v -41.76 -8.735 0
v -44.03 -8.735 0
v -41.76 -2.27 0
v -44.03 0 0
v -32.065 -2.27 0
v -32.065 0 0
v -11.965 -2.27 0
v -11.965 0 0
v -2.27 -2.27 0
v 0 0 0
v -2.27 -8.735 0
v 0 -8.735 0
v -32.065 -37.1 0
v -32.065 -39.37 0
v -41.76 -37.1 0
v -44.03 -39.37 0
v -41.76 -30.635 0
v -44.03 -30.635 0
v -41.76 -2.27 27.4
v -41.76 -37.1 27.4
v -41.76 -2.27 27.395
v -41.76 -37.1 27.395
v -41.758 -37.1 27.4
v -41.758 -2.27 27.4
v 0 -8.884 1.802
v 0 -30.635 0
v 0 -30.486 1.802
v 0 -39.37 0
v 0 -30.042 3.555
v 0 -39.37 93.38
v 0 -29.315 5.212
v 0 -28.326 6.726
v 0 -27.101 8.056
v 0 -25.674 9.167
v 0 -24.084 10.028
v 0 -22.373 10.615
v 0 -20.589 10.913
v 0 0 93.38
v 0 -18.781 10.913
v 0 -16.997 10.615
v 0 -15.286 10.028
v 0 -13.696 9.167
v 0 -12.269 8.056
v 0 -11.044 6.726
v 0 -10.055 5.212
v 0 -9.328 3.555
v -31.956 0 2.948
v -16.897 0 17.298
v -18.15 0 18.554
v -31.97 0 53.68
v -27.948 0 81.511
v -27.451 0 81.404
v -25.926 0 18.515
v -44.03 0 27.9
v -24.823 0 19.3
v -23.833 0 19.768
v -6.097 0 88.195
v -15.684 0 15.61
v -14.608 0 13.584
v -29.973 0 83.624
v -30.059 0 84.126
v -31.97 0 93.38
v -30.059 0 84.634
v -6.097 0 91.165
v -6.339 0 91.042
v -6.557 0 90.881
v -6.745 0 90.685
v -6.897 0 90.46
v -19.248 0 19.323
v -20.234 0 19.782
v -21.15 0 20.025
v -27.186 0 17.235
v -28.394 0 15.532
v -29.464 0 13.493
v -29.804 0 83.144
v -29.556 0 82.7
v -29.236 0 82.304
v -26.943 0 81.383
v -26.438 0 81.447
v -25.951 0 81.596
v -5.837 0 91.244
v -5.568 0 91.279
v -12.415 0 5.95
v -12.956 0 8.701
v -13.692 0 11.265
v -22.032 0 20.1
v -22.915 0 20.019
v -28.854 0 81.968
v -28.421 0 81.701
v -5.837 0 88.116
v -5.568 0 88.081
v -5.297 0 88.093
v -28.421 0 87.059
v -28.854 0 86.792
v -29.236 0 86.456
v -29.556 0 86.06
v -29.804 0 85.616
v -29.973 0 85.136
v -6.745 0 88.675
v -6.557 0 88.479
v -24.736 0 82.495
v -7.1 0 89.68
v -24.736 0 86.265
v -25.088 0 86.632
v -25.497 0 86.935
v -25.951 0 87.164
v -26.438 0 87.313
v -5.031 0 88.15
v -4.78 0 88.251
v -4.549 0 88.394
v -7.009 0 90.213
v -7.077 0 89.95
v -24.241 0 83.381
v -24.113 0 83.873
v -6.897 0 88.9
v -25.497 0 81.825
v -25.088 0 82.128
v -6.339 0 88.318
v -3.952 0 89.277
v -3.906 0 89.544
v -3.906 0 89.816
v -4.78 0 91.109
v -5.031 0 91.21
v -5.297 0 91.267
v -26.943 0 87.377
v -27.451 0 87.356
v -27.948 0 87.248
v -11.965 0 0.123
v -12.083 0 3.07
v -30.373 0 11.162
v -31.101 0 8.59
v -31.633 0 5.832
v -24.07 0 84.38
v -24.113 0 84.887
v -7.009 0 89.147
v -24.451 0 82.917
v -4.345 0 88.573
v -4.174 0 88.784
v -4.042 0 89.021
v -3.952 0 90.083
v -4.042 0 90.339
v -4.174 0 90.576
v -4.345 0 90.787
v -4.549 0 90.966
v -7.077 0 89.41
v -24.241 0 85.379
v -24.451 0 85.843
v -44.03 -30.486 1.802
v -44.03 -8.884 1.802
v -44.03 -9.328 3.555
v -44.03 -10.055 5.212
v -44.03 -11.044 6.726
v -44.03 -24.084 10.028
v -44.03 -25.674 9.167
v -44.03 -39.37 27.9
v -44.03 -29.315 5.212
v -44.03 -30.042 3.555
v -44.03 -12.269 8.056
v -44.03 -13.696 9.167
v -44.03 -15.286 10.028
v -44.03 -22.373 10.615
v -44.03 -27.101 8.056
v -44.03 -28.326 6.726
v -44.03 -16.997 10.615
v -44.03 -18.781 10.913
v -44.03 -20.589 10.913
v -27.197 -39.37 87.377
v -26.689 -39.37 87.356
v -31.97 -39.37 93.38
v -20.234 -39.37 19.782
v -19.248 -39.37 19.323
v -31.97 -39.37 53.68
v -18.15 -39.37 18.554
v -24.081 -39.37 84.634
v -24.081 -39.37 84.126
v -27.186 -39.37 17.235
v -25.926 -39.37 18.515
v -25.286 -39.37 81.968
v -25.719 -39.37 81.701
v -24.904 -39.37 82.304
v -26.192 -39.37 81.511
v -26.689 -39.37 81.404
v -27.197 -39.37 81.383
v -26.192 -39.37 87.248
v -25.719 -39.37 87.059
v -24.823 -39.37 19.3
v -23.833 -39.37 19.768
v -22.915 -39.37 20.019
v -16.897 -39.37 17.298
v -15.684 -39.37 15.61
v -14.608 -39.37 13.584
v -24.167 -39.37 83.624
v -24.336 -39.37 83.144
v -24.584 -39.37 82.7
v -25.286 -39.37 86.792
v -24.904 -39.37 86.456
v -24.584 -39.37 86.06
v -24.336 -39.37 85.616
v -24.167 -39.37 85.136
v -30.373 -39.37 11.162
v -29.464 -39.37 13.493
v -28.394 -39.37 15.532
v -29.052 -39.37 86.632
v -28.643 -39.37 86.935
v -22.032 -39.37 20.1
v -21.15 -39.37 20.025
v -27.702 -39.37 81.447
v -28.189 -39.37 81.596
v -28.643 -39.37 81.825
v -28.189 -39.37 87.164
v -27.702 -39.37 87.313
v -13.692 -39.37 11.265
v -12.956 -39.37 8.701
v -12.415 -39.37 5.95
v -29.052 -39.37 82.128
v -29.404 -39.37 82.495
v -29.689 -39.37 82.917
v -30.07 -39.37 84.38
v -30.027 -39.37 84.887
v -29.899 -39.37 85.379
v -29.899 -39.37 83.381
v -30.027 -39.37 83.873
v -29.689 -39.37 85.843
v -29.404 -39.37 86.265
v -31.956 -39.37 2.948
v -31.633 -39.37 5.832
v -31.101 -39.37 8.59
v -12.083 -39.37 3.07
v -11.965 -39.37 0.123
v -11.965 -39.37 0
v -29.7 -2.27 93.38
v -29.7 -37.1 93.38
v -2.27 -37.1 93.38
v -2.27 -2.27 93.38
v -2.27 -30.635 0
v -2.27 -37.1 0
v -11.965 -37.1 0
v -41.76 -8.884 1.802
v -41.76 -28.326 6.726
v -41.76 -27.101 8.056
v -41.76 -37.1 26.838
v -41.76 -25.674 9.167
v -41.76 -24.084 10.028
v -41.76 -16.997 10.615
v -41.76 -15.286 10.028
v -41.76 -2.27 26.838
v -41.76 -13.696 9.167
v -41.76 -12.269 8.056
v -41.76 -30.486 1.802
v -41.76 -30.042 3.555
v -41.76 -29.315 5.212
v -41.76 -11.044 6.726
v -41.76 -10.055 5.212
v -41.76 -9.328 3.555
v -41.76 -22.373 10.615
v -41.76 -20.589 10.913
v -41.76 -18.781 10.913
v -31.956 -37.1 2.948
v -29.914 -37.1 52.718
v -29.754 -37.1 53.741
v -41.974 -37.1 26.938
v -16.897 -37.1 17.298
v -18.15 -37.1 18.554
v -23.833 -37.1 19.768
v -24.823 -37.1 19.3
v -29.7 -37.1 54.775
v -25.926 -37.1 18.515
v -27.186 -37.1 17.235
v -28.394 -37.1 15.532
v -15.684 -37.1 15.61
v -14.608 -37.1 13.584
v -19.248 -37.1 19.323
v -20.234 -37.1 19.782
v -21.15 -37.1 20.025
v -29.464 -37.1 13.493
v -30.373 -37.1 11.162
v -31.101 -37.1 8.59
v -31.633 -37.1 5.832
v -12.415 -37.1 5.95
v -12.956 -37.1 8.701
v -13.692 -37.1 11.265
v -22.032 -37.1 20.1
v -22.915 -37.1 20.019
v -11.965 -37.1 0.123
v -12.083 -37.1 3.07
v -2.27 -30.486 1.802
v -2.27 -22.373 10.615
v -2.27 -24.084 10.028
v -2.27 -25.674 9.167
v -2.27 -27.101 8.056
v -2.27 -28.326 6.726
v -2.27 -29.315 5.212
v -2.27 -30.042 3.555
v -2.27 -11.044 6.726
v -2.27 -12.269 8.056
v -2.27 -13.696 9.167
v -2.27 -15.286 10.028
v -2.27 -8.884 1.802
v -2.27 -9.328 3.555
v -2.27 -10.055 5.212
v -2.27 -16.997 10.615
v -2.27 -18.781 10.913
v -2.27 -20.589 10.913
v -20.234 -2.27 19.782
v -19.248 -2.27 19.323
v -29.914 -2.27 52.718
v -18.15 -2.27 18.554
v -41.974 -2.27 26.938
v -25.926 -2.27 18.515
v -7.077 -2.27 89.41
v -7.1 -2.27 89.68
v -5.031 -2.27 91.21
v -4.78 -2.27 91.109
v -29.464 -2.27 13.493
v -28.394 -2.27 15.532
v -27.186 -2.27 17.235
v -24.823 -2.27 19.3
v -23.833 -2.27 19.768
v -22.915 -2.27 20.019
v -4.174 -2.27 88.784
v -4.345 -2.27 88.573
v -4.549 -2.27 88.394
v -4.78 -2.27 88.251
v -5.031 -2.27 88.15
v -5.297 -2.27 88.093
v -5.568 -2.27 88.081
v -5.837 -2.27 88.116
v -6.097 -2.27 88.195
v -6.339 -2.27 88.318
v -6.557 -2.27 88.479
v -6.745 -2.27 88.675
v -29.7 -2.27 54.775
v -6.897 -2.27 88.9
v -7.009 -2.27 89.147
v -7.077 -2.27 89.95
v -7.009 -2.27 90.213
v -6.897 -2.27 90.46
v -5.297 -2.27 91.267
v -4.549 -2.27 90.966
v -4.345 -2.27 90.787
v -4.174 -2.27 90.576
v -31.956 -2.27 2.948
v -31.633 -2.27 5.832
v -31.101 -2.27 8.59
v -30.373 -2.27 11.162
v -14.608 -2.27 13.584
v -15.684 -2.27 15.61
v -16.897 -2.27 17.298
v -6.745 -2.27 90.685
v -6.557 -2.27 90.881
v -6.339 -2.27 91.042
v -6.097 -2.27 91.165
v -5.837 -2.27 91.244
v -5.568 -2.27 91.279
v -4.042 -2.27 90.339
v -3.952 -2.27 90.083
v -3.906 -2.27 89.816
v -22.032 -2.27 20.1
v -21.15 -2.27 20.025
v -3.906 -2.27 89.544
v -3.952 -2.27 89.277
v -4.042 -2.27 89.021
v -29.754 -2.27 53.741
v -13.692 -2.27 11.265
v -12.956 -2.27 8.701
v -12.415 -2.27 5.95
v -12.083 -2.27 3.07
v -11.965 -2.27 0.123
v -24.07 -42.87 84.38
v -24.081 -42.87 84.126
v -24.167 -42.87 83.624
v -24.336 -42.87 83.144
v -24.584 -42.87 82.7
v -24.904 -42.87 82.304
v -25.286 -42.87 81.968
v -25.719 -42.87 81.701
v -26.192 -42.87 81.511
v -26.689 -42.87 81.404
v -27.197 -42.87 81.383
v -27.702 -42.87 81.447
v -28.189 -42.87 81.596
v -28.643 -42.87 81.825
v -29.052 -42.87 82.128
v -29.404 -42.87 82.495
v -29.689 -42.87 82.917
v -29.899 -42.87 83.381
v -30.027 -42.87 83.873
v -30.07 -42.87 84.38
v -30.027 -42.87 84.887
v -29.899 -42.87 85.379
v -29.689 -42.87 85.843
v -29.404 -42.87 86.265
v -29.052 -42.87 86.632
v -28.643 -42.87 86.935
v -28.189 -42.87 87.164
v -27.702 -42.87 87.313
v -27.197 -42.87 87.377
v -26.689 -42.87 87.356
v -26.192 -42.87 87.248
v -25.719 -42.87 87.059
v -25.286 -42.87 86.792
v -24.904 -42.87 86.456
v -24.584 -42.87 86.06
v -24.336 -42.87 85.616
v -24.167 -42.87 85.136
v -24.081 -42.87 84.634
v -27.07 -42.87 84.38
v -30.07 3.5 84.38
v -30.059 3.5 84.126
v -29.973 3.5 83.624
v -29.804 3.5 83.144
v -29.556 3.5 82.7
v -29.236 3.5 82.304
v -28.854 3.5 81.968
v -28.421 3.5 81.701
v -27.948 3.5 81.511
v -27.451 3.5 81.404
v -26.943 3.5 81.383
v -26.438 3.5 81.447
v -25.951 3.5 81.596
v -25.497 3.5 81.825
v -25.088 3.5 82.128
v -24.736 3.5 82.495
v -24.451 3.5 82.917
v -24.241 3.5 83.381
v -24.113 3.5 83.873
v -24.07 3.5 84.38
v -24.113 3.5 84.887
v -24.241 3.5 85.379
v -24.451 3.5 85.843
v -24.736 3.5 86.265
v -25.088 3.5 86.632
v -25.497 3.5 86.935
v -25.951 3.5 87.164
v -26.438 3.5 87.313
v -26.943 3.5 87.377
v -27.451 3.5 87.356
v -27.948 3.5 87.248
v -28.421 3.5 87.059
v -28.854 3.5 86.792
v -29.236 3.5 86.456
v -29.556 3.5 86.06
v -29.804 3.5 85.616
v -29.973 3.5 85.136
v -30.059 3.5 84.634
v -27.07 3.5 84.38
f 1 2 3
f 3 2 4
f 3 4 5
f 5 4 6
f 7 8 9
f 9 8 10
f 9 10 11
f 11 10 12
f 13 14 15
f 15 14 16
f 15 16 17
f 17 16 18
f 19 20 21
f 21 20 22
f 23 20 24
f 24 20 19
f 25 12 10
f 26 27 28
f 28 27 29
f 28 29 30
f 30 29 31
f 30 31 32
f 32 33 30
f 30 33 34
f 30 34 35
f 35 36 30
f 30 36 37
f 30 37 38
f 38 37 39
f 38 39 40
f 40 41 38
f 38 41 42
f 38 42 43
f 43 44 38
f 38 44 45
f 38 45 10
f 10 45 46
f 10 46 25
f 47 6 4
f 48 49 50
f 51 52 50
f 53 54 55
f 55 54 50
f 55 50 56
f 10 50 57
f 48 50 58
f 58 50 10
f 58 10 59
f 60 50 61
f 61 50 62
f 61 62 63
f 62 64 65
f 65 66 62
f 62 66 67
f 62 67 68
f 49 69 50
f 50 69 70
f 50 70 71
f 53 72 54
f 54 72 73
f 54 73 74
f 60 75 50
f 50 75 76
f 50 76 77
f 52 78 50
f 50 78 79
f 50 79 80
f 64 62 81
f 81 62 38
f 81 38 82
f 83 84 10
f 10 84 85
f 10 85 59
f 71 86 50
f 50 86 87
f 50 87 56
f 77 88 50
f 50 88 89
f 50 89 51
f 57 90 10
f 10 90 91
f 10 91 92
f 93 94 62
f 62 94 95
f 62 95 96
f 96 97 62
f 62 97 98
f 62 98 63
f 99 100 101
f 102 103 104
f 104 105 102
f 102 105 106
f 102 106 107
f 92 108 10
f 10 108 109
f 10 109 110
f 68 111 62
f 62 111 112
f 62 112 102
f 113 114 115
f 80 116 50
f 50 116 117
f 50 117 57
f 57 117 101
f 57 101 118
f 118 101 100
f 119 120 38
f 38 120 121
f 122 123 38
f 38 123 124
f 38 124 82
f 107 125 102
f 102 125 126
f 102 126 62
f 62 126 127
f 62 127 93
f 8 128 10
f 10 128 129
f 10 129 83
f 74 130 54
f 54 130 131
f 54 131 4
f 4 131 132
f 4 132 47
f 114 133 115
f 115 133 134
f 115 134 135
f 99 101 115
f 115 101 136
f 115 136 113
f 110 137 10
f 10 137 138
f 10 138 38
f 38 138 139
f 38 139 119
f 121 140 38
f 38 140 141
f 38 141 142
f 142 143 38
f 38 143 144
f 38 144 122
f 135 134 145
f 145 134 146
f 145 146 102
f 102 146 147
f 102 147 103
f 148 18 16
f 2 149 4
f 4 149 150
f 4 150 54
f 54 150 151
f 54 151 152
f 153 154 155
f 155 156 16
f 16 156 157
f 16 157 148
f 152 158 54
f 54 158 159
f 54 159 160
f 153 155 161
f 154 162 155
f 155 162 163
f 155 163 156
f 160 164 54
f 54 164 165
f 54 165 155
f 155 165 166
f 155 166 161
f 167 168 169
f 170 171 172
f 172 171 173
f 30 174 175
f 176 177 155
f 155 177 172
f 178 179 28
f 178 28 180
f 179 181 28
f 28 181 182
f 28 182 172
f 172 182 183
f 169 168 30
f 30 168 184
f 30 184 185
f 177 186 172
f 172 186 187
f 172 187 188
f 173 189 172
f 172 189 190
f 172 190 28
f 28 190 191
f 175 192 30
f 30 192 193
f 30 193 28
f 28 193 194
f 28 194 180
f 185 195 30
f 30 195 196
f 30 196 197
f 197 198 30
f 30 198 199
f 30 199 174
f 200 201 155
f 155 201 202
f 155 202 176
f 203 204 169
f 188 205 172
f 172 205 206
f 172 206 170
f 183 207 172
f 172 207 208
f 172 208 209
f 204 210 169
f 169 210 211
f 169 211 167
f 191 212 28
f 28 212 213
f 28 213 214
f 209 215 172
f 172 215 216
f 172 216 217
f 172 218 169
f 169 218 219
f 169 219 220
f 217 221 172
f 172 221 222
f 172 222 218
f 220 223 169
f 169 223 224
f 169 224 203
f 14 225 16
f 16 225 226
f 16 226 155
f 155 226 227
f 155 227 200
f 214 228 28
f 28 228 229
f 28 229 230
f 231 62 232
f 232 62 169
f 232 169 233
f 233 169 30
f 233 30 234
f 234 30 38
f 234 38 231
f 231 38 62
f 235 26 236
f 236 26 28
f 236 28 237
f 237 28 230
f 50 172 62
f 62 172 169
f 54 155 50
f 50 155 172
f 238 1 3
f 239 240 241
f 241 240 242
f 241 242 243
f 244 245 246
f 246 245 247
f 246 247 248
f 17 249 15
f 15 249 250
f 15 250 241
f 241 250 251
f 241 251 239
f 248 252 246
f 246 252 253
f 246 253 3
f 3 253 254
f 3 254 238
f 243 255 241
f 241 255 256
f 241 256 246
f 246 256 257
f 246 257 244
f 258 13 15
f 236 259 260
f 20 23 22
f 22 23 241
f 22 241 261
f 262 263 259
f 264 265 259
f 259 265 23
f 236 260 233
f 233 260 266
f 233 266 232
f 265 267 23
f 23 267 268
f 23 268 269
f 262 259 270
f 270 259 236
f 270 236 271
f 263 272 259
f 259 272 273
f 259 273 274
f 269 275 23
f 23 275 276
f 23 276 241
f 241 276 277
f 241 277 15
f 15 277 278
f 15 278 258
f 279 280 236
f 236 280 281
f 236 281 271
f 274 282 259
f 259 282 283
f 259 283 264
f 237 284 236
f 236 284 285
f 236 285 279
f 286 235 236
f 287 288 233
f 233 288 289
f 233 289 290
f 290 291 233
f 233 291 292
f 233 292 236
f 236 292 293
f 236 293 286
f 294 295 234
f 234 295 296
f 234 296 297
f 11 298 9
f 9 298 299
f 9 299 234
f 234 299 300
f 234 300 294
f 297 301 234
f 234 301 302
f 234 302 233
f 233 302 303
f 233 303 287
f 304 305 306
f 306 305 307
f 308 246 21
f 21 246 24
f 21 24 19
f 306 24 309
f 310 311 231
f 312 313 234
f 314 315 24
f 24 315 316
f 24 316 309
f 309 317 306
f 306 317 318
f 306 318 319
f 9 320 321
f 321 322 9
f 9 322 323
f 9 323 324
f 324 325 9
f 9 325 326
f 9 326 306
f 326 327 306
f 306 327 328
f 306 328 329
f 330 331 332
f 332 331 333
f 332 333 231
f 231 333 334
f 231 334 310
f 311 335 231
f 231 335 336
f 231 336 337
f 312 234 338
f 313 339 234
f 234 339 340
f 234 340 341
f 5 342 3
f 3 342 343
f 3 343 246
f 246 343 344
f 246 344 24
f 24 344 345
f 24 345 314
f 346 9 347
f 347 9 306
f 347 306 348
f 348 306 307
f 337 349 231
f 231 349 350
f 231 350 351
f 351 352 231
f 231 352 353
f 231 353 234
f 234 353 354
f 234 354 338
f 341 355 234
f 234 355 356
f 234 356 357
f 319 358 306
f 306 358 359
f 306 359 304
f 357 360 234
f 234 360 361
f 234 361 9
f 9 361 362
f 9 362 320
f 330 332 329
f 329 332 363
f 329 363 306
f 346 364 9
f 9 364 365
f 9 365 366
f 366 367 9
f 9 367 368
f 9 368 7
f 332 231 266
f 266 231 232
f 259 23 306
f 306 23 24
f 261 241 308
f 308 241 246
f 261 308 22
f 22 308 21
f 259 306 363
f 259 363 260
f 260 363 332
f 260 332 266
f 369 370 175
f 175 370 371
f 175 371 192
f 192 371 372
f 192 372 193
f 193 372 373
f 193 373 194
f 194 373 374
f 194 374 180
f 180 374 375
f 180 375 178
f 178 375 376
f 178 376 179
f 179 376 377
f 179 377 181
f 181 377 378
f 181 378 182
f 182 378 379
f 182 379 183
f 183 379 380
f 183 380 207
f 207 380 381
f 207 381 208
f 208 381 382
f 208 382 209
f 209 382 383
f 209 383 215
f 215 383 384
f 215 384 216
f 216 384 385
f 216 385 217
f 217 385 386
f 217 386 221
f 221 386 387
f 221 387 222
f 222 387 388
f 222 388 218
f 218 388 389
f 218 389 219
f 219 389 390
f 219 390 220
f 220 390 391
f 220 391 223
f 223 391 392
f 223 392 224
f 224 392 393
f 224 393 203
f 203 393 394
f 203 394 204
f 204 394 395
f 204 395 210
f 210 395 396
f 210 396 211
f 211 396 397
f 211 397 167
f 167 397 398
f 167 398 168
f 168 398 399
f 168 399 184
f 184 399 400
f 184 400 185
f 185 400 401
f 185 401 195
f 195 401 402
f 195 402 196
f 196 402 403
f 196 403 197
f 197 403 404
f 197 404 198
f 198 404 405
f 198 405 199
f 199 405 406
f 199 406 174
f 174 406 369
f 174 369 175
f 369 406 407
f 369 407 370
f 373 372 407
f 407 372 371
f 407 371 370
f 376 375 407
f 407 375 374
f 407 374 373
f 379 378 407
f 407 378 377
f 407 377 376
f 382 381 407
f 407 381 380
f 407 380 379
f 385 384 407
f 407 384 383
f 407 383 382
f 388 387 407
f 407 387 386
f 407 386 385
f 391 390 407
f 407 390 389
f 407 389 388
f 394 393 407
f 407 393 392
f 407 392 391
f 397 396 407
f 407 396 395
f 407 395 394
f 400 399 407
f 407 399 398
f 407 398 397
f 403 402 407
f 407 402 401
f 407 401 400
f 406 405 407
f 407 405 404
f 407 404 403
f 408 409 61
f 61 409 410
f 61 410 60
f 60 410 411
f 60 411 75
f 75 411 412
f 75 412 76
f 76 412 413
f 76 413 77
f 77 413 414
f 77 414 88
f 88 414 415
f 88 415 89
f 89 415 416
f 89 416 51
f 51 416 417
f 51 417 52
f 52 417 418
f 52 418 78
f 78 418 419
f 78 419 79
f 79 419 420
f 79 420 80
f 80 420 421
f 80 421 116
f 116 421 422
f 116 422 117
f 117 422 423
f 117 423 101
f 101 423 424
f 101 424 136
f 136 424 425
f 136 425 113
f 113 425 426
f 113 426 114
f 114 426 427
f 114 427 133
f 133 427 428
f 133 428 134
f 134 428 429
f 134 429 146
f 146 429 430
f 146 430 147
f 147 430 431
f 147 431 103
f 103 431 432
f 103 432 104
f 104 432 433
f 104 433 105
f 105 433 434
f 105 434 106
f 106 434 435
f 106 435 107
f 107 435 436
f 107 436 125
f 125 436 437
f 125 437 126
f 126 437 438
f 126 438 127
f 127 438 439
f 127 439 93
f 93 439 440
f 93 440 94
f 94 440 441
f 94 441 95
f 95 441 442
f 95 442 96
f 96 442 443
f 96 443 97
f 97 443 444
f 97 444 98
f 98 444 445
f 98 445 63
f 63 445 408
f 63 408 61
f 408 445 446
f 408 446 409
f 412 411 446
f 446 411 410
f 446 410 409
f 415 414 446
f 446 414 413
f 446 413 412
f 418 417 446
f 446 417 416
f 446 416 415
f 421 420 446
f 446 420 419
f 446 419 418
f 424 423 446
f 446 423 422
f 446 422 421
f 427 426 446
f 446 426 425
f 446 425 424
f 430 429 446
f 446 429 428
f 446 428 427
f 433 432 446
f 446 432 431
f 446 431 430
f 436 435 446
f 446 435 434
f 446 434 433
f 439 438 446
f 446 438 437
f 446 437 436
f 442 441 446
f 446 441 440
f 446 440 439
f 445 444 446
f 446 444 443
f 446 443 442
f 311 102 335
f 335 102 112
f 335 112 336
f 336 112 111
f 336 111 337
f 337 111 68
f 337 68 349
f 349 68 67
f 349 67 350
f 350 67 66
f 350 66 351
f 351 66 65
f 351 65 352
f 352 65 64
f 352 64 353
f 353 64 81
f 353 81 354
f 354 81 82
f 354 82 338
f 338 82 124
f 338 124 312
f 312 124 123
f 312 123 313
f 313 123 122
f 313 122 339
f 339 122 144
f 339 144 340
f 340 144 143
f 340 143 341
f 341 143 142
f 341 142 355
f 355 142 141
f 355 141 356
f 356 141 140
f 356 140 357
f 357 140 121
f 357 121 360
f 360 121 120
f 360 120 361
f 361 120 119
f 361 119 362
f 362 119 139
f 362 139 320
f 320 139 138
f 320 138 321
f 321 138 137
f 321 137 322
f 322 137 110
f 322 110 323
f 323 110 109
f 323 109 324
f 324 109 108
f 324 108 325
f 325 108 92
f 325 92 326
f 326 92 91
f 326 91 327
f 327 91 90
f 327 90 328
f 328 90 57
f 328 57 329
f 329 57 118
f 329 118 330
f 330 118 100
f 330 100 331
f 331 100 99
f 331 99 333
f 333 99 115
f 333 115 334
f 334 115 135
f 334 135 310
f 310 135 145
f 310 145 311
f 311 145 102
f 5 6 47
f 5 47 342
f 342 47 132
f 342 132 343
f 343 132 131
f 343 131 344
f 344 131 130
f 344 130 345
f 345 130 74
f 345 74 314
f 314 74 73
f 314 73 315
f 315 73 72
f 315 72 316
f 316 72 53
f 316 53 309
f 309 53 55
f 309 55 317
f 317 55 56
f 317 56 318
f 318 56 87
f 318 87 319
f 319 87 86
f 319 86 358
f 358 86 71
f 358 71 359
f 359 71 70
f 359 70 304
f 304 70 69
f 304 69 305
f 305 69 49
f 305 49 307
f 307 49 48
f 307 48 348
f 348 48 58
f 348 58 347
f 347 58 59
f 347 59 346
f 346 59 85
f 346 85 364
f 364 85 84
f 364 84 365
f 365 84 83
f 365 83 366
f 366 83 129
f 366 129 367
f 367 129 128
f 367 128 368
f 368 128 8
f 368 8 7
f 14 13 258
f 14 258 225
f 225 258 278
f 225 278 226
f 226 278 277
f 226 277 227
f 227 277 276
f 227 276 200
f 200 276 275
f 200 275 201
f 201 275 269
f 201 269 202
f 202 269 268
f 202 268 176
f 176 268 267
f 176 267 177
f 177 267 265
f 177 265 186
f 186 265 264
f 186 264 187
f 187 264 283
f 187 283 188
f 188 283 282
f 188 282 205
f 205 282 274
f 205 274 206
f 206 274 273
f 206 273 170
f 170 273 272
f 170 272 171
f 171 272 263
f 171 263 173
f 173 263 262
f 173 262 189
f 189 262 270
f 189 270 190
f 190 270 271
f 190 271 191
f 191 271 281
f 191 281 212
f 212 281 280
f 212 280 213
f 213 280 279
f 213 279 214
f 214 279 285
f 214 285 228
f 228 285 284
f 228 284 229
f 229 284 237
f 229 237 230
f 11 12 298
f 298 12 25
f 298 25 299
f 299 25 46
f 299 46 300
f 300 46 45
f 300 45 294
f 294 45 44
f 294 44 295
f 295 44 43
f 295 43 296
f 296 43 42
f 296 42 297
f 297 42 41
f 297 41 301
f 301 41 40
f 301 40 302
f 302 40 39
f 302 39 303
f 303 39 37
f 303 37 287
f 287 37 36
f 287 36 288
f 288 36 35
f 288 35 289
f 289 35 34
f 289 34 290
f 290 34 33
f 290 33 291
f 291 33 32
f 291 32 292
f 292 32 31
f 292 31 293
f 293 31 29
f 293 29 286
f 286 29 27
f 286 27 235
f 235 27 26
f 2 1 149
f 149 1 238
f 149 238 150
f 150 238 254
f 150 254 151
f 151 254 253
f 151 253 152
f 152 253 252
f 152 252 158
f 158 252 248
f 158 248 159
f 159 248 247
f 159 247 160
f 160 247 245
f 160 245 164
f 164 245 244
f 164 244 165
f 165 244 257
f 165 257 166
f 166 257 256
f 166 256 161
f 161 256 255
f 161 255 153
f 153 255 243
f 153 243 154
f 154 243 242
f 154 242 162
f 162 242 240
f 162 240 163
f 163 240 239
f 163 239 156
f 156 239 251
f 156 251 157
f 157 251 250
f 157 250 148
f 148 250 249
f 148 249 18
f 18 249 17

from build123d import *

# Parameters (mm, degrees)
ESQUISSE1_W                 = 44.03
ESQUISSE1_H                 = 39.37
BOSS_EXTRU_1_DEPTH          = 93.38
ESQUISSE2_W                 = 12.06
ESQUISSE2_H                 = 39.7
ENL_V_MAT_EXTRU_1_DEPTH     = 93.38
ENL_V_START                 = -68.526093067
ENL_V_MAT_EXTRU_2_OUTLINE_W = 39.37
ENL_V_MAT_EXTRU_2_OUTLINE_H = 28.461412473
ENL_V_MAT_EXTRU_2_DEPTH     = 16.822144735
ESQUISSE4_W                 = 39.49
ESQUISSE4_H                 = 34.83
ENL_V_MAT_EXTRU_3_DEPTH     = 27.4
ESQUISSE5_W                 = 27.43
ESQUISSE5_H                 = 34.83
ENL_V_MAT_EXTRU_4_DEPTH     = 100
ENL_V_START_2               = -2.27
ESQUISSE6_W                 = 28.461412473
ESQUISSE6_H                 = 34.83
ENL_V_MAT_EXTRU_7_DEPTH     = 20
CONG_2_R                    = 10
ESQUISSE7_R                 = 3
BOSS_EXTRU_2_DEPTH          = 3.5
BOSS_EXTRU_3_START          = 3.5
ESQUISSE8_R                 = 3
BOSS_EXTRU_3_DEPTH          = 3.5
ESQUISSE9_R                 = 1.6
ENL_V_MAT_EXTRU_8_DEPTH     = 3.5
ESQUISSE10_RX               = 20.1
ESQUISSE10_RY               = 10.05
ENL_V_MAT_EXTRU_9_DEPTH     = 100
ESQUISSE12_R                = 10.95
ENL_V_MAT_EXTRU_10_DEPTH    = 100


with BuildPart() as part:
    # Esquisse1 → Boss.-Extru.1 (new body)
    with BuildSketch(Plane.XY):
        with Locations((-22.015, -19.685)):
            Rectangle(ESQUISSE1_W, ESQUISSE1_H)
    extrude(amount=BOSS_EXTRU_1_DEPTH)

    # Esquisse2 → Enlèv. mat.-Extru.1 (cut)
    with BuildSketch(Plane(origin=(0, 0, 0), x_dir=(1, 0, 0), z_dir=(0, 1, 0))):
        with Locations((-38, -73.53)):
            Rectangle(ESQUISSE2_W, ESQUISSE2_H)
    extrude(amount=-ENL_V_MAT_EXTRU_1_DEPTH, mode=Mode.SUBTRACT)

    # Enlèv. mat.-Extru.2: read off the stored shape, not the designer's step
    # Enlèv. mat.-Extru.2 outline → Enlèv. mat.-Extru.2 (cut)
    with BuildSketch(Plane(origin=(0, 0, 0), x_dir=(0, 1, 0), z_dir=(0.905787793342715, 0, -0.423731605419439)).offset(ENL_V_START)):
        with Locations((-19.685, 20.845283085)):
            Rectangle(ENL_V_MAT_EXTRU_2_OUTLINE_W, ENL_V_MAT_EXTRU_2_OUTLINE_H)
    extrude(amount=ENL_V_MAT_EXTRU_2_DEPTH, mode=Mode.SUBTRACT)

    # Esquisse4 → Enlèv. mat.-Extru.3 (cut)
    with BuildSketch(Plane(origin=(0, 0, 0), x_dir=(-1, 0, 0), z_dir=(0, 0, -1))):
        with Locations((22.015, -19.685)):
            Rectangle(ESQUISSE4_W, ESQUISSE4_H)
    extrude(amount=-ENL_V_MAT_EXTRU_3_DEPTH, mode=Mode.SUBTRACT)

    # Esquisse5 → Enlèv. mat.-Extru.4 (cut)
    with BuildSketch(Plane.XY.offset(93.38)):
        with Locations((-15.985, -19.685)):
            Rectangle(ESQUISSE5_W, ESQUISSE5_H)
    extrude(amount=-ENL_V_MAT_EXTRU_4_DEPTH, mode=Mode.SUBTRACT)

    # Esquisse6 → Enlèv. mat.-Extru.7 (cut)
    with BuildSketch(Plane(origin=(-46.832805267, 0, 21.908597033), x_dir=(0.42373160541943916, 0, 0.9057877933427149), z_dir=(-0.9057877933427149, 0, 0.42373160541943916)).offset(ENL_V_START_2)):
        with Locations((20.845283085, -19.685)):
            Rectangle(ESQUISSE6_W, ESQUISSE6_H)
    extrude(amount=-ENL_V_MAT_EXTRU_7_DEPTH, mode=Mode.SUBTRACT)

    # Congé2
    # the kernel refuses this fillet: 10 mm, written as the material it takes off along each edge
    with BuildSketch(Plane(origin=(-29.7, -37.1, 52.618083786), x_dir=(0, 0, 1), z_dir=(0, 1, 0))) as cong_2_piece_1:
        with BuildLine():
            CenterArc((2.157105836, -10), CONG_2_R, 90, 11.870832878)
            Line((0.10004547, -0.213861709), (0, 0))
            Line((0, 0), (2.157105836, 0))
        make_face()
    extrude(amount=34.83, mode=Mode.SUBTRACT)

    # Esquisse7 → Boss.-Extru.2 (add)
    with BuildSketch(Plane(origin=(0, -39.37, 0), x_dir=(-1, 0, 0), z_dir=(0, -1, 0))):
        with Locations((27.07, -84.38)):
            Circle(ESQUISSE7_R)
    extrude(amount=BOSS_EXTRU_2_DEPTH)

    # Esquisse8 → Boss.-Extru.3 (add)
    with BuildSketch(Plane(origin=(0, 0, 0), x_dir=(1, 0, 0), z_dir=(0, 1, 0)).offset(BOSS_EXTRU_3_START)):
        with Locations(Location((-27.07, -84.38, 0), (0, 0, 180))):
            Circle(ESQUISSE8_R)
    extrude(amount=-BOSS_EXTRU_3_DEPTH)

    # Esquisse9 → Enlèv. mat.-Extru.8 (cut)
    with BuildSketch(Plane(origin=(0, 0, 0), x_dir=(1, 0, 0), z_dir=(0, 1, 0))):
        with Locations(Location((-5.5, -89.68, 0), (0, 0, 180))):
            Circle(ESQUISSE9_R)
    extrude(amount=-ENL_V_MAT_EXTRU_8_DEPTH, mode=Mode.SUBTRACT)

    # Esquisse10 → Enlèv. mat.-Extru.9 (cut)
    with BuildSketch(Plane(origin=(0, 0, 0), x_dir=(1, 0, 0), z_dir=(0, 1, 0))):
        with Locations(Location((-22.015, 0), (0, 0, -90))):
            Ellipse(ESQUISSE10_RX, ESQUISSE10_RY)
    extrude(amount=-ENL_V_MAT_EXTRU_9_DEPTH, mode=Mode.SUBTRACT)

    # Esquisse12 → Enlèv. mat.-Extru.10 (cut)
    with BuildSketch(Plane(origin=(0, 0, 0), x_dir=(0, 0, -1), z_dir=(1, 0, 0))):
        with Locations((0, -19.685)):
            Circle(ESQUISSE12_R)
    extrude(amount=-ENL_V_MAT_EXTRU_10_DEPTH, mode=Mode.SUBTRACT)


solid = part.part
